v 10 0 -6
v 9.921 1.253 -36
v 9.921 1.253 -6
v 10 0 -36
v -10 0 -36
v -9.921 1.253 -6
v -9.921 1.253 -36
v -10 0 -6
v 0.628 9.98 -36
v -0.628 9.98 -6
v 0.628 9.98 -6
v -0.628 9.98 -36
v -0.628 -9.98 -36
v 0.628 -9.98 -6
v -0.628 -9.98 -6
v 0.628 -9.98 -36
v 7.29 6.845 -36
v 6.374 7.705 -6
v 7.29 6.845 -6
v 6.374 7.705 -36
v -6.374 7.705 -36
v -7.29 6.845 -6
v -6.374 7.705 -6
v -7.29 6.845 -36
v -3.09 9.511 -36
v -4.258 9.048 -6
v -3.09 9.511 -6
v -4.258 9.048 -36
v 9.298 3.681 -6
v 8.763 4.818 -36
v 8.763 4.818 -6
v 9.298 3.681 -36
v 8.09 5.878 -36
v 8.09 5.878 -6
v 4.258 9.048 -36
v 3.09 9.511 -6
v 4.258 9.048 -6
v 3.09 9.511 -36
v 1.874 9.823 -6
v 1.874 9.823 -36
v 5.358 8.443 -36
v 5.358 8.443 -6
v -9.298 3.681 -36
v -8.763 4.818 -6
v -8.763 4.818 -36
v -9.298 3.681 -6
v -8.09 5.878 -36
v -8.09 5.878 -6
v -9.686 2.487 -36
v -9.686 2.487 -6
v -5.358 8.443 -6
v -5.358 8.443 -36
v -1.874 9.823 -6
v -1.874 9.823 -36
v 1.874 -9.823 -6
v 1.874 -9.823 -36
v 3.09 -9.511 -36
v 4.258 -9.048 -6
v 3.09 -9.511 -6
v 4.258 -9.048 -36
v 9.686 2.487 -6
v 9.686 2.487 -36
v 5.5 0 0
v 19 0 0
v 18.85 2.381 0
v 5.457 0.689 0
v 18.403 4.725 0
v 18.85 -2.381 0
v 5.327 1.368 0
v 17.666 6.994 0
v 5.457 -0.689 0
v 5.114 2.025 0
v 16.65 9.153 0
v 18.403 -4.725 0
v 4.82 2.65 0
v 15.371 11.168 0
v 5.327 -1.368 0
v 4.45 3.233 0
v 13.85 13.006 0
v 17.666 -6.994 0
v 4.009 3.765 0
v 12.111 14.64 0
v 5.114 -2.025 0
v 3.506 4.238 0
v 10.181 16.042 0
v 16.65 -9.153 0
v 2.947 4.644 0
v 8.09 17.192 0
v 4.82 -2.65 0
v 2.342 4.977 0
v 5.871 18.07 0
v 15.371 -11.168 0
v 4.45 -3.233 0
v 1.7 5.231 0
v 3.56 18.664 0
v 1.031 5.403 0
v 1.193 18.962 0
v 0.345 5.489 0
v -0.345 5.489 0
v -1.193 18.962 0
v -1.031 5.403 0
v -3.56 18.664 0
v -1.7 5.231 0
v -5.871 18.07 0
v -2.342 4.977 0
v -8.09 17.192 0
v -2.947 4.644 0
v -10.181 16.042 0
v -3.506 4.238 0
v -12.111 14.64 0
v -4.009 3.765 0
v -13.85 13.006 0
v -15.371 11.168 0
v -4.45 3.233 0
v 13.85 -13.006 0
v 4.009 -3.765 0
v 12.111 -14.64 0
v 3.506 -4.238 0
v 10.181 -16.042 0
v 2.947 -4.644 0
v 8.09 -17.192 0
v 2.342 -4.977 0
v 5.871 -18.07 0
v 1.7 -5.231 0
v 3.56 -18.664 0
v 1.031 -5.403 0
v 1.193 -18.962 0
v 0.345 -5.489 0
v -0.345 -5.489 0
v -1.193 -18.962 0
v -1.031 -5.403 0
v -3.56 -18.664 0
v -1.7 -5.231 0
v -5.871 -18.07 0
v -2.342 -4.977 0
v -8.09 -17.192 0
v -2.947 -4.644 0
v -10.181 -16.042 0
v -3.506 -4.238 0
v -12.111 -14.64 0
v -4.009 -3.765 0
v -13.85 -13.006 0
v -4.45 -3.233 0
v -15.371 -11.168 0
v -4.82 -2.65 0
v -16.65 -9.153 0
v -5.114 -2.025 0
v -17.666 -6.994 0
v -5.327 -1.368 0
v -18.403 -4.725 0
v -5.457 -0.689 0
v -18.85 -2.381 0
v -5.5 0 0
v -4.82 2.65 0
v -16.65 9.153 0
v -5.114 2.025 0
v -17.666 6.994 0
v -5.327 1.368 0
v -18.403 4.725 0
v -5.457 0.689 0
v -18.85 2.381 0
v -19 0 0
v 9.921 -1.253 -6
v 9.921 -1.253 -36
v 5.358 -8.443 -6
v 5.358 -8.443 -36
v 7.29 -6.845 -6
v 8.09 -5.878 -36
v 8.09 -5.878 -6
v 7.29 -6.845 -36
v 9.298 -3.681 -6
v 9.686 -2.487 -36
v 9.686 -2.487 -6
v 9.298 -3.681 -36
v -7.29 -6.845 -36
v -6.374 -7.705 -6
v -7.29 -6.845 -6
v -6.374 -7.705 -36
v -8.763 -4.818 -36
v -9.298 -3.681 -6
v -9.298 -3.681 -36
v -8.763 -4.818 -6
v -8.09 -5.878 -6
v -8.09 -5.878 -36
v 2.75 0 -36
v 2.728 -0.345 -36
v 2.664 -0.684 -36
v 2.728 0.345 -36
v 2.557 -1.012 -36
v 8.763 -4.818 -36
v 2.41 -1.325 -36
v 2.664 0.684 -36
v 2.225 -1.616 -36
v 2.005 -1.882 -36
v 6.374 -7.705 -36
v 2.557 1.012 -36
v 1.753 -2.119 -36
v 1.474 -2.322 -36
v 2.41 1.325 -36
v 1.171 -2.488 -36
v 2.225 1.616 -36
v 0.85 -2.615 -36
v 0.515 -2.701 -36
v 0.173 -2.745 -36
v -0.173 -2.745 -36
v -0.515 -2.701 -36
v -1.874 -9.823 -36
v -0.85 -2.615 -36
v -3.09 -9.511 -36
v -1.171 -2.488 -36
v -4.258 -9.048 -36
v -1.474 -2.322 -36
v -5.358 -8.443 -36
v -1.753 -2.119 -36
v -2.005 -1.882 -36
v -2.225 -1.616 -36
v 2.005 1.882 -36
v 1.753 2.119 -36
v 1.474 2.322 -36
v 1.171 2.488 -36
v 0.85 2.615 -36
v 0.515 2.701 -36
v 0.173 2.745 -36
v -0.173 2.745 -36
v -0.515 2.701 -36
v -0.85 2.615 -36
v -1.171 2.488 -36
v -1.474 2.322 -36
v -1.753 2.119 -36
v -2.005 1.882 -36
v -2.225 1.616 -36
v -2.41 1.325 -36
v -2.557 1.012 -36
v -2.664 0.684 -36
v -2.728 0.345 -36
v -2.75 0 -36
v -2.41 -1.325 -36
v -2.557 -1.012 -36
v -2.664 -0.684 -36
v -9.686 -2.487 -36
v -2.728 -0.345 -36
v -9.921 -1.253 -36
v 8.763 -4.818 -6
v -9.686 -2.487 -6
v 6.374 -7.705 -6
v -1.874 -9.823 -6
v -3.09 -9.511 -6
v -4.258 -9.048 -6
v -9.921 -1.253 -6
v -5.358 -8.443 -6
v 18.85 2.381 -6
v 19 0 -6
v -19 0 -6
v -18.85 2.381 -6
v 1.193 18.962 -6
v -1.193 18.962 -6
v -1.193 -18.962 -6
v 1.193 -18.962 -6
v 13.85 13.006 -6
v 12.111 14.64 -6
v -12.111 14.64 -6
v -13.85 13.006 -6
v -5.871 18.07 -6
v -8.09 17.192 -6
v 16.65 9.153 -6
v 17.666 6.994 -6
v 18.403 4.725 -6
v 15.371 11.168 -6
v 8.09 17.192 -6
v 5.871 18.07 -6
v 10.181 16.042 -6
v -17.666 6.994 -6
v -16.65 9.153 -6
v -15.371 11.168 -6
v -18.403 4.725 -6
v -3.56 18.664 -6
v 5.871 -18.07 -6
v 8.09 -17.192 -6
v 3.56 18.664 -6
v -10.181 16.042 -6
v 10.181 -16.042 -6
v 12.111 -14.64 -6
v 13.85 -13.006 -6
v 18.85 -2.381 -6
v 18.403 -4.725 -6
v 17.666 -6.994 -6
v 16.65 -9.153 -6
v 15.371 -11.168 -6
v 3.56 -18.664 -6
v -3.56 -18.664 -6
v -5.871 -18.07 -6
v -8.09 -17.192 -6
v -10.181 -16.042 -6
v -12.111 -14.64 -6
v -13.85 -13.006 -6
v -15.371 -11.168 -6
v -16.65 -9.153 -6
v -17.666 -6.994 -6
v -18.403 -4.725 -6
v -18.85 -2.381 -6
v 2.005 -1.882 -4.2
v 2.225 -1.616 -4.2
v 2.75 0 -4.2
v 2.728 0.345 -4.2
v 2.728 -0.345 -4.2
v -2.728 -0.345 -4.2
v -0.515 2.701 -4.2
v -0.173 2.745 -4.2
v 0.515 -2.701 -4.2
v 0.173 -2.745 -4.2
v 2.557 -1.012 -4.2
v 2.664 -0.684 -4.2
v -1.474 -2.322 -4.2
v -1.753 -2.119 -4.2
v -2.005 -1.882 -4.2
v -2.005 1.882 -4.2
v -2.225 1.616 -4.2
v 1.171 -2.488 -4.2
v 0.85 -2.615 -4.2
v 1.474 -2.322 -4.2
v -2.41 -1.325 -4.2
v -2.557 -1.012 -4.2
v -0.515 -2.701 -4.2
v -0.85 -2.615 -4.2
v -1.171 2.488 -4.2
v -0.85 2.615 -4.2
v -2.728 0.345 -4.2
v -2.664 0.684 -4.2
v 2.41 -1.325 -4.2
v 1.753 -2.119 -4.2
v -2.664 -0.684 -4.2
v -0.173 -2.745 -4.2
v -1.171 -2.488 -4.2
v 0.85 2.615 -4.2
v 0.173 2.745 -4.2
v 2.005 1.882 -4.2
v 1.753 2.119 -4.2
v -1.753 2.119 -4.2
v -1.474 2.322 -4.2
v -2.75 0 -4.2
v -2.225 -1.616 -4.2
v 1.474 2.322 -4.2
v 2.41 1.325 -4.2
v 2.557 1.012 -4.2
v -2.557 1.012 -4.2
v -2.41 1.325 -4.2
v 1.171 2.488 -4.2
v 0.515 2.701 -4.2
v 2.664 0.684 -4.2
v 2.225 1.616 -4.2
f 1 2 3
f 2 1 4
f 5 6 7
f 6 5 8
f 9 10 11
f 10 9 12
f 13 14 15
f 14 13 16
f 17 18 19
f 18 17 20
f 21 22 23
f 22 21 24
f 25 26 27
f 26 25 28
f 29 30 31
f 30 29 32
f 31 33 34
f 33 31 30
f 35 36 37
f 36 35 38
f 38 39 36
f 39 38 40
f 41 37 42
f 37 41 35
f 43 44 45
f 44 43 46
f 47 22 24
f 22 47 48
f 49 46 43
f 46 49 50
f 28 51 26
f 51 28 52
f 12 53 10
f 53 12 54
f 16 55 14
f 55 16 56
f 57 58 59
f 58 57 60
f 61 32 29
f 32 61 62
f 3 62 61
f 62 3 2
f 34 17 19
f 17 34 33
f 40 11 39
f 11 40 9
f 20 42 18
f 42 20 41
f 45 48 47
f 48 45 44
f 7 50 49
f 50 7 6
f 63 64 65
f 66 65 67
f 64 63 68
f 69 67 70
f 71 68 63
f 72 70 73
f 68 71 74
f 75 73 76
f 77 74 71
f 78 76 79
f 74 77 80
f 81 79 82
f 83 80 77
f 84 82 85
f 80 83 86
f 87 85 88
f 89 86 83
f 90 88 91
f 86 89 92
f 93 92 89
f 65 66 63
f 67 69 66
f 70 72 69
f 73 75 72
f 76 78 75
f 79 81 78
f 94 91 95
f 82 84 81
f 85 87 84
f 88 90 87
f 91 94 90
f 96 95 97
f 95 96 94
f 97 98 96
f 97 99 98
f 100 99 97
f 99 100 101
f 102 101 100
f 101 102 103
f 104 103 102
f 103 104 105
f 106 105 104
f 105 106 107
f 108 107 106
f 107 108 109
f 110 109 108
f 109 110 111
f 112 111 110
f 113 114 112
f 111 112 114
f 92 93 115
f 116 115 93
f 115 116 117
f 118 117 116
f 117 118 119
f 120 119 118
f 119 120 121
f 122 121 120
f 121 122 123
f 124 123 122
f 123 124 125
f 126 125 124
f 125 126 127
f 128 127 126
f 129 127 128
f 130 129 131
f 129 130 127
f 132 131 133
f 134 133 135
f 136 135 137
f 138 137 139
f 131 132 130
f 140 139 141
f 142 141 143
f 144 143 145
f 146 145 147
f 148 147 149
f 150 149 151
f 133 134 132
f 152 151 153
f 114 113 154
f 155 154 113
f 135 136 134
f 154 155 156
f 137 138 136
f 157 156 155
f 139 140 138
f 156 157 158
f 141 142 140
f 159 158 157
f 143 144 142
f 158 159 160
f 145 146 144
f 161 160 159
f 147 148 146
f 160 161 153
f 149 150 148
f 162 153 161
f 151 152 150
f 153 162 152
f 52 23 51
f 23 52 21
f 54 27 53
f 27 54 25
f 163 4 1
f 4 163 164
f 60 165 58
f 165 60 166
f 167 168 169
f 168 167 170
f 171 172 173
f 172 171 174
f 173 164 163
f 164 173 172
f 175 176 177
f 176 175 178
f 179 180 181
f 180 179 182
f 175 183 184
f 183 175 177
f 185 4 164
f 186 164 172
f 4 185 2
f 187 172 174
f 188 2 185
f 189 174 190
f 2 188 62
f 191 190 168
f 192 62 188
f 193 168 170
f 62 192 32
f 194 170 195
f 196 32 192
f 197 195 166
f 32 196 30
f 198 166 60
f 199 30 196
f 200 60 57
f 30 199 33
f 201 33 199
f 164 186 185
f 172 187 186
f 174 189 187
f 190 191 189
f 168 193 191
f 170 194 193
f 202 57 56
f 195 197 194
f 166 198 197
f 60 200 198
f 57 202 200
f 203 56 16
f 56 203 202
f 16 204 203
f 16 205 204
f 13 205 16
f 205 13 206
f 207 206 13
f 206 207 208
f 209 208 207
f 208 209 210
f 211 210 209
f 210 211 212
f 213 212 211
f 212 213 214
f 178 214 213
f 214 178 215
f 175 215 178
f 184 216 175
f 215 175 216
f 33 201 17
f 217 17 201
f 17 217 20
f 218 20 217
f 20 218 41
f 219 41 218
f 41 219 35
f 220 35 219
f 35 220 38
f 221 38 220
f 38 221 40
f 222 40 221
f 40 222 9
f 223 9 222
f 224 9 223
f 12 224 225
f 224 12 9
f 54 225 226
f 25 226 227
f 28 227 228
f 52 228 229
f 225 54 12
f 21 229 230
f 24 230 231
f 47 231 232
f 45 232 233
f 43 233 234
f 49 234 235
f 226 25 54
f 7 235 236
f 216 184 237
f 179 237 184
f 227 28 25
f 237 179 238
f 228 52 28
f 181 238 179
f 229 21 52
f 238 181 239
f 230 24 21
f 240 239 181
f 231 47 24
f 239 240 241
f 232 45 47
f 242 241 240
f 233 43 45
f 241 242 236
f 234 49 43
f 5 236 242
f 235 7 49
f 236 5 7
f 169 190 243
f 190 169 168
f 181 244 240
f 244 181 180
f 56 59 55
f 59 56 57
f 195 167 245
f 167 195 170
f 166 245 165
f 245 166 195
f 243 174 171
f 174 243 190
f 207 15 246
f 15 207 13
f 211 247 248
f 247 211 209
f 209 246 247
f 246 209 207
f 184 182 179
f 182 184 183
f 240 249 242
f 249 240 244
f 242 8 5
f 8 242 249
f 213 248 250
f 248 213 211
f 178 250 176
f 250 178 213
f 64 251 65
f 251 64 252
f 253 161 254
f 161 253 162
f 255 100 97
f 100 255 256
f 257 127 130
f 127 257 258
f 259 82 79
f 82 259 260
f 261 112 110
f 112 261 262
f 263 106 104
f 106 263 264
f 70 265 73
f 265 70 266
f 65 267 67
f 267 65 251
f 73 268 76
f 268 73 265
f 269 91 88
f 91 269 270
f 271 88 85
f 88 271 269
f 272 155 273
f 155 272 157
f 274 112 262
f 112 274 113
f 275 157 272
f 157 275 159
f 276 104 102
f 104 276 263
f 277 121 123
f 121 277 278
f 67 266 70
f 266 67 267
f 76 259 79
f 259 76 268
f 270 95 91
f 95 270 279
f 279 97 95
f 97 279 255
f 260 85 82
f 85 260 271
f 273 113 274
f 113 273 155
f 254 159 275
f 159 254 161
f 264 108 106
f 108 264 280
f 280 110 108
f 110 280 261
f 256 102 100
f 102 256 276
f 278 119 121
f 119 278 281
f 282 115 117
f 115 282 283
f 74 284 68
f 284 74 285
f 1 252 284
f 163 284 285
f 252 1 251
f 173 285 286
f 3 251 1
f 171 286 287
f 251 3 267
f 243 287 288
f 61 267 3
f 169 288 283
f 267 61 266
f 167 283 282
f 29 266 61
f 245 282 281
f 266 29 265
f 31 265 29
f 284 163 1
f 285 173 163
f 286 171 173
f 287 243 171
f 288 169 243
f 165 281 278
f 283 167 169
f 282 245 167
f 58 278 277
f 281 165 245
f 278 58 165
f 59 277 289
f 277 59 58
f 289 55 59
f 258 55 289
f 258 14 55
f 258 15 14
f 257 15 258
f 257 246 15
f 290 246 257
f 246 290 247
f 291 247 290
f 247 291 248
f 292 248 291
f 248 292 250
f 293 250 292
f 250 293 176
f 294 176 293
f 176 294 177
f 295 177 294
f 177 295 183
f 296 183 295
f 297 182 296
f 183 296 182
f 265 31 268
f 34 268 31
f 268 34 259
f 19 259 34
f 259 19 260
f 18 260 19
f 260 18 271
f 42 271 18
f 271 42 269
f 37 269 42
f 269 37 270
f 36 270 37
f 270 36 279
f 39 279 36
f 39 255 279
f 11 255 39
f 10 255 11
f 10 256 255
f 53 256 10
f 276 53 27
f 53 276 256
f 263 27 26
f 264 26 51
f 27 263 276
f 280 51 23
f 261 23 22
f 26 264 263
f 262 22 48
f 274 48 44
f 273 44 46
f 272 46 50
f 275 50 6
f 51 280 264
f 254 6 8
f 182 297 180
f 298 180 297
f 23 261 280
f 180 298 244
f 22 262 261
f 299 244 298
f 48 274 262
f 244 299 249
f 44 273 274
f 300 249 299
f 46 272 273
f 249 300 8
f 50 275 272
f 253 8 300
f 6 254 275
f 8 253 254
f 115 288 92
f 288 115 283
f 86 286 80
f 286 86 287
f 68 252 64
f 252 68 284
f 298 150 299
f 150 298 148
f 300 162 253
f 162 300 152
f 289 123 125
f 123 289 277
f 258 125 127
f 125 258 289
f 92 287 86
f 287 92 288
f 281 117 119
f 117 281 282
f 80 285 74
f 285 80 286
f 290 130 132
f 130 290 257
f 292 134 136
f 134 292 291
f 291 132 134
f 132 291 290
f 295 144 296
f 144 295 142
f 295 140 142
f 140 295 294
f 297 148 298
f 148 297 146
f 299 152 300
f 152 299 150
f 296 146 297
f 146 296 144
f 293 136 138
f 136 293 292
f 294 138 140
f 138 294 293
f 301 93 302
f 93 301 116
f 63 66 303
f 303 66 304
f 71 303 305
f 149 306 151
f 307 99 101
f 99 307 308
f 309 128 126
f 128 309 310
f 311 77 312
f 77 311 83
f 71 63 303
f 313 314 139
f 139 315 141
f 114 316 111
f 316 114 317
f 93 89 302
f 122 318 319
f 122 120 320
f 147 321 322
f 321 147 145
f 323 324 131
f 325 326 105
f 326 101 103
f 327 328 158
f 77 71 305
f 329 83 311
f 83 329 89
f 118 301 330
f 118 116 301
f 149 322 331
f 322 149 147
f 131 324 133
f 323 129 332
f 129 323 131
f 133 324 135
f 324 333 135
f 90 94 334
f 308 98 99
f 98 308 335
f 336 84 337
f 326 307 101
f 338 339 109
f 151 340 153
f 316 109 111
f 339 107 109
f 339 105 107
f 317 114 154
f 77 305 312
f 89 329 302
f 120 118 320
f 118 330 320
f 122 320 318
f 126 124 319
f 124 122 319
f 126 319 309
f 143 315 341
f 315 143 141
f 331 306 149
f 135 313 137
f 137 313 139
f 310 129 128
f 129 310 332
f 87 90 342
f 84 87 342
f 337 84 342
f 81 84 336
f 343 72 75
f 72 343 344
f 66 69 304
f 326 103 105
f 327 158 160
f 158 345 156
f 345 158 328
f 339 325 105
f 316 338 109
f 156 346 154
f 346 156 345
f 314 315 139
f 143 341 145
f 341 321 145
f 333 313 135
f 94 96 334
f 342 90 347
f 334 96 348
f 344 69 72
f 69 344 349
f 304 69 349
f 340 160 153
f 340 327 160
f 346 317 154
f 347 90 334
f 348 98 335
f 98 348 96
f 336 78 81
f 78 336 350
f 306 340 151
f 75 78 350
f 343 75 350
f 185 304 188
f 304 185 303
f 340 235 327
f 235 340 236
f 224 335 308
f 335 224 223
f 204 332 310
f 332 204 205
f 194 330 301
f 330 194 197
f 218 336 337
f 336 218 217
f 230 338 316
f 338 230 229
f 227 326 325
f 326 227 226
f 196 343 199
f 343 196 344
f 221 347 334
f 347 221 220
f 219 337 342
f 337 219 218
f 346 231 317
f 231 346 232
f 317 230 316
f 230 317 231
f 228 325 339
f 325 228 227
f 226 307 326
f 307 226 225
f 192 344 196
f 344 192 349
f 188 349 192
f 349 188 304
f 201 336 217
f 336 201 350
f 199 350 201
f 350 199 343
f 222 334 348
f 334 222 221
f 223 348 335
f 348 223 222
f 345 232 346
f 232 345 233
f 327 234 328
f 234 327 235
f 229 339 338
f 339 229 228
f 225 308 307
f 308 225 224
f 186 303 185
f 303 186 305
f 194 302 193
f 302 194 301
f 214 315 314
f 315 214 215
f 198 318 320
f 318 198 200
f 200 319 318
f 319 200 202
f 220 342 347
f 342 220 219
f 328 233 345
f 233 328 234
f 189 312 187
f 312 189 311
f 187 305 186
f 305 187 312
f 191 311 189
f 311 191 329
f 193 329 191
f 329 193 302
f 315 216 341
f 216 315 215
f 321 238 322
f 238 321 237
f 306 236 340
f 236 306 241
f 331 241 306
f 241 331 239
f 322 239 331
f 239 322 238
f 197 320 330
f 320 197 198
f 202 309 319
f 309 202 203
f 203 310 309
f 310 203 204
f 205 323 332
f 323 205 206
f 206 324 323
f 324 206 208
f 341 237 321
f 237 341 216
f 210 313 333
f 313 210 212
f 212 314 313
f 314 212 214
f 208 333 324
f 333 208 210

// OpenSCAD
$fn = 50;


difference() {
	union() {
		translate(v = [0, 0, -36.0000000000]) {
			cylinder(h = 36, r = 10.0000000000);
		}
		translate(v = [0, 0, -6.0000000000]) {
			cylinder(h = 6, r = 19.0000000000);
		}
	}
	union() {
		translate(v = [0, 0, 0]) {
			rotate(a = [0, 0, 0]) {
				difference() {
					union() {
						#translate(v = [0, 0, -36.0000000000]) {
							cylinder(h = 36, r = 2.2500000000);
						}
						#translate(v = [0, 0, -4.2000000000]) {
							cylinder(h = 4.2000000000, r1 = 2.7500000000, r2 = 5.5000000000);
						}
						#translate(v = [0, 0, -36.0000000000]) {
							cylinder(h = 36, r = 2.7500000000);
						}
						#translate(v = [0, 0, -36.0000000000]) {
							cylinder(h = 36, r = 2.2500000000);
						}
					}
					union();
				}
			}
		}
	}
}
